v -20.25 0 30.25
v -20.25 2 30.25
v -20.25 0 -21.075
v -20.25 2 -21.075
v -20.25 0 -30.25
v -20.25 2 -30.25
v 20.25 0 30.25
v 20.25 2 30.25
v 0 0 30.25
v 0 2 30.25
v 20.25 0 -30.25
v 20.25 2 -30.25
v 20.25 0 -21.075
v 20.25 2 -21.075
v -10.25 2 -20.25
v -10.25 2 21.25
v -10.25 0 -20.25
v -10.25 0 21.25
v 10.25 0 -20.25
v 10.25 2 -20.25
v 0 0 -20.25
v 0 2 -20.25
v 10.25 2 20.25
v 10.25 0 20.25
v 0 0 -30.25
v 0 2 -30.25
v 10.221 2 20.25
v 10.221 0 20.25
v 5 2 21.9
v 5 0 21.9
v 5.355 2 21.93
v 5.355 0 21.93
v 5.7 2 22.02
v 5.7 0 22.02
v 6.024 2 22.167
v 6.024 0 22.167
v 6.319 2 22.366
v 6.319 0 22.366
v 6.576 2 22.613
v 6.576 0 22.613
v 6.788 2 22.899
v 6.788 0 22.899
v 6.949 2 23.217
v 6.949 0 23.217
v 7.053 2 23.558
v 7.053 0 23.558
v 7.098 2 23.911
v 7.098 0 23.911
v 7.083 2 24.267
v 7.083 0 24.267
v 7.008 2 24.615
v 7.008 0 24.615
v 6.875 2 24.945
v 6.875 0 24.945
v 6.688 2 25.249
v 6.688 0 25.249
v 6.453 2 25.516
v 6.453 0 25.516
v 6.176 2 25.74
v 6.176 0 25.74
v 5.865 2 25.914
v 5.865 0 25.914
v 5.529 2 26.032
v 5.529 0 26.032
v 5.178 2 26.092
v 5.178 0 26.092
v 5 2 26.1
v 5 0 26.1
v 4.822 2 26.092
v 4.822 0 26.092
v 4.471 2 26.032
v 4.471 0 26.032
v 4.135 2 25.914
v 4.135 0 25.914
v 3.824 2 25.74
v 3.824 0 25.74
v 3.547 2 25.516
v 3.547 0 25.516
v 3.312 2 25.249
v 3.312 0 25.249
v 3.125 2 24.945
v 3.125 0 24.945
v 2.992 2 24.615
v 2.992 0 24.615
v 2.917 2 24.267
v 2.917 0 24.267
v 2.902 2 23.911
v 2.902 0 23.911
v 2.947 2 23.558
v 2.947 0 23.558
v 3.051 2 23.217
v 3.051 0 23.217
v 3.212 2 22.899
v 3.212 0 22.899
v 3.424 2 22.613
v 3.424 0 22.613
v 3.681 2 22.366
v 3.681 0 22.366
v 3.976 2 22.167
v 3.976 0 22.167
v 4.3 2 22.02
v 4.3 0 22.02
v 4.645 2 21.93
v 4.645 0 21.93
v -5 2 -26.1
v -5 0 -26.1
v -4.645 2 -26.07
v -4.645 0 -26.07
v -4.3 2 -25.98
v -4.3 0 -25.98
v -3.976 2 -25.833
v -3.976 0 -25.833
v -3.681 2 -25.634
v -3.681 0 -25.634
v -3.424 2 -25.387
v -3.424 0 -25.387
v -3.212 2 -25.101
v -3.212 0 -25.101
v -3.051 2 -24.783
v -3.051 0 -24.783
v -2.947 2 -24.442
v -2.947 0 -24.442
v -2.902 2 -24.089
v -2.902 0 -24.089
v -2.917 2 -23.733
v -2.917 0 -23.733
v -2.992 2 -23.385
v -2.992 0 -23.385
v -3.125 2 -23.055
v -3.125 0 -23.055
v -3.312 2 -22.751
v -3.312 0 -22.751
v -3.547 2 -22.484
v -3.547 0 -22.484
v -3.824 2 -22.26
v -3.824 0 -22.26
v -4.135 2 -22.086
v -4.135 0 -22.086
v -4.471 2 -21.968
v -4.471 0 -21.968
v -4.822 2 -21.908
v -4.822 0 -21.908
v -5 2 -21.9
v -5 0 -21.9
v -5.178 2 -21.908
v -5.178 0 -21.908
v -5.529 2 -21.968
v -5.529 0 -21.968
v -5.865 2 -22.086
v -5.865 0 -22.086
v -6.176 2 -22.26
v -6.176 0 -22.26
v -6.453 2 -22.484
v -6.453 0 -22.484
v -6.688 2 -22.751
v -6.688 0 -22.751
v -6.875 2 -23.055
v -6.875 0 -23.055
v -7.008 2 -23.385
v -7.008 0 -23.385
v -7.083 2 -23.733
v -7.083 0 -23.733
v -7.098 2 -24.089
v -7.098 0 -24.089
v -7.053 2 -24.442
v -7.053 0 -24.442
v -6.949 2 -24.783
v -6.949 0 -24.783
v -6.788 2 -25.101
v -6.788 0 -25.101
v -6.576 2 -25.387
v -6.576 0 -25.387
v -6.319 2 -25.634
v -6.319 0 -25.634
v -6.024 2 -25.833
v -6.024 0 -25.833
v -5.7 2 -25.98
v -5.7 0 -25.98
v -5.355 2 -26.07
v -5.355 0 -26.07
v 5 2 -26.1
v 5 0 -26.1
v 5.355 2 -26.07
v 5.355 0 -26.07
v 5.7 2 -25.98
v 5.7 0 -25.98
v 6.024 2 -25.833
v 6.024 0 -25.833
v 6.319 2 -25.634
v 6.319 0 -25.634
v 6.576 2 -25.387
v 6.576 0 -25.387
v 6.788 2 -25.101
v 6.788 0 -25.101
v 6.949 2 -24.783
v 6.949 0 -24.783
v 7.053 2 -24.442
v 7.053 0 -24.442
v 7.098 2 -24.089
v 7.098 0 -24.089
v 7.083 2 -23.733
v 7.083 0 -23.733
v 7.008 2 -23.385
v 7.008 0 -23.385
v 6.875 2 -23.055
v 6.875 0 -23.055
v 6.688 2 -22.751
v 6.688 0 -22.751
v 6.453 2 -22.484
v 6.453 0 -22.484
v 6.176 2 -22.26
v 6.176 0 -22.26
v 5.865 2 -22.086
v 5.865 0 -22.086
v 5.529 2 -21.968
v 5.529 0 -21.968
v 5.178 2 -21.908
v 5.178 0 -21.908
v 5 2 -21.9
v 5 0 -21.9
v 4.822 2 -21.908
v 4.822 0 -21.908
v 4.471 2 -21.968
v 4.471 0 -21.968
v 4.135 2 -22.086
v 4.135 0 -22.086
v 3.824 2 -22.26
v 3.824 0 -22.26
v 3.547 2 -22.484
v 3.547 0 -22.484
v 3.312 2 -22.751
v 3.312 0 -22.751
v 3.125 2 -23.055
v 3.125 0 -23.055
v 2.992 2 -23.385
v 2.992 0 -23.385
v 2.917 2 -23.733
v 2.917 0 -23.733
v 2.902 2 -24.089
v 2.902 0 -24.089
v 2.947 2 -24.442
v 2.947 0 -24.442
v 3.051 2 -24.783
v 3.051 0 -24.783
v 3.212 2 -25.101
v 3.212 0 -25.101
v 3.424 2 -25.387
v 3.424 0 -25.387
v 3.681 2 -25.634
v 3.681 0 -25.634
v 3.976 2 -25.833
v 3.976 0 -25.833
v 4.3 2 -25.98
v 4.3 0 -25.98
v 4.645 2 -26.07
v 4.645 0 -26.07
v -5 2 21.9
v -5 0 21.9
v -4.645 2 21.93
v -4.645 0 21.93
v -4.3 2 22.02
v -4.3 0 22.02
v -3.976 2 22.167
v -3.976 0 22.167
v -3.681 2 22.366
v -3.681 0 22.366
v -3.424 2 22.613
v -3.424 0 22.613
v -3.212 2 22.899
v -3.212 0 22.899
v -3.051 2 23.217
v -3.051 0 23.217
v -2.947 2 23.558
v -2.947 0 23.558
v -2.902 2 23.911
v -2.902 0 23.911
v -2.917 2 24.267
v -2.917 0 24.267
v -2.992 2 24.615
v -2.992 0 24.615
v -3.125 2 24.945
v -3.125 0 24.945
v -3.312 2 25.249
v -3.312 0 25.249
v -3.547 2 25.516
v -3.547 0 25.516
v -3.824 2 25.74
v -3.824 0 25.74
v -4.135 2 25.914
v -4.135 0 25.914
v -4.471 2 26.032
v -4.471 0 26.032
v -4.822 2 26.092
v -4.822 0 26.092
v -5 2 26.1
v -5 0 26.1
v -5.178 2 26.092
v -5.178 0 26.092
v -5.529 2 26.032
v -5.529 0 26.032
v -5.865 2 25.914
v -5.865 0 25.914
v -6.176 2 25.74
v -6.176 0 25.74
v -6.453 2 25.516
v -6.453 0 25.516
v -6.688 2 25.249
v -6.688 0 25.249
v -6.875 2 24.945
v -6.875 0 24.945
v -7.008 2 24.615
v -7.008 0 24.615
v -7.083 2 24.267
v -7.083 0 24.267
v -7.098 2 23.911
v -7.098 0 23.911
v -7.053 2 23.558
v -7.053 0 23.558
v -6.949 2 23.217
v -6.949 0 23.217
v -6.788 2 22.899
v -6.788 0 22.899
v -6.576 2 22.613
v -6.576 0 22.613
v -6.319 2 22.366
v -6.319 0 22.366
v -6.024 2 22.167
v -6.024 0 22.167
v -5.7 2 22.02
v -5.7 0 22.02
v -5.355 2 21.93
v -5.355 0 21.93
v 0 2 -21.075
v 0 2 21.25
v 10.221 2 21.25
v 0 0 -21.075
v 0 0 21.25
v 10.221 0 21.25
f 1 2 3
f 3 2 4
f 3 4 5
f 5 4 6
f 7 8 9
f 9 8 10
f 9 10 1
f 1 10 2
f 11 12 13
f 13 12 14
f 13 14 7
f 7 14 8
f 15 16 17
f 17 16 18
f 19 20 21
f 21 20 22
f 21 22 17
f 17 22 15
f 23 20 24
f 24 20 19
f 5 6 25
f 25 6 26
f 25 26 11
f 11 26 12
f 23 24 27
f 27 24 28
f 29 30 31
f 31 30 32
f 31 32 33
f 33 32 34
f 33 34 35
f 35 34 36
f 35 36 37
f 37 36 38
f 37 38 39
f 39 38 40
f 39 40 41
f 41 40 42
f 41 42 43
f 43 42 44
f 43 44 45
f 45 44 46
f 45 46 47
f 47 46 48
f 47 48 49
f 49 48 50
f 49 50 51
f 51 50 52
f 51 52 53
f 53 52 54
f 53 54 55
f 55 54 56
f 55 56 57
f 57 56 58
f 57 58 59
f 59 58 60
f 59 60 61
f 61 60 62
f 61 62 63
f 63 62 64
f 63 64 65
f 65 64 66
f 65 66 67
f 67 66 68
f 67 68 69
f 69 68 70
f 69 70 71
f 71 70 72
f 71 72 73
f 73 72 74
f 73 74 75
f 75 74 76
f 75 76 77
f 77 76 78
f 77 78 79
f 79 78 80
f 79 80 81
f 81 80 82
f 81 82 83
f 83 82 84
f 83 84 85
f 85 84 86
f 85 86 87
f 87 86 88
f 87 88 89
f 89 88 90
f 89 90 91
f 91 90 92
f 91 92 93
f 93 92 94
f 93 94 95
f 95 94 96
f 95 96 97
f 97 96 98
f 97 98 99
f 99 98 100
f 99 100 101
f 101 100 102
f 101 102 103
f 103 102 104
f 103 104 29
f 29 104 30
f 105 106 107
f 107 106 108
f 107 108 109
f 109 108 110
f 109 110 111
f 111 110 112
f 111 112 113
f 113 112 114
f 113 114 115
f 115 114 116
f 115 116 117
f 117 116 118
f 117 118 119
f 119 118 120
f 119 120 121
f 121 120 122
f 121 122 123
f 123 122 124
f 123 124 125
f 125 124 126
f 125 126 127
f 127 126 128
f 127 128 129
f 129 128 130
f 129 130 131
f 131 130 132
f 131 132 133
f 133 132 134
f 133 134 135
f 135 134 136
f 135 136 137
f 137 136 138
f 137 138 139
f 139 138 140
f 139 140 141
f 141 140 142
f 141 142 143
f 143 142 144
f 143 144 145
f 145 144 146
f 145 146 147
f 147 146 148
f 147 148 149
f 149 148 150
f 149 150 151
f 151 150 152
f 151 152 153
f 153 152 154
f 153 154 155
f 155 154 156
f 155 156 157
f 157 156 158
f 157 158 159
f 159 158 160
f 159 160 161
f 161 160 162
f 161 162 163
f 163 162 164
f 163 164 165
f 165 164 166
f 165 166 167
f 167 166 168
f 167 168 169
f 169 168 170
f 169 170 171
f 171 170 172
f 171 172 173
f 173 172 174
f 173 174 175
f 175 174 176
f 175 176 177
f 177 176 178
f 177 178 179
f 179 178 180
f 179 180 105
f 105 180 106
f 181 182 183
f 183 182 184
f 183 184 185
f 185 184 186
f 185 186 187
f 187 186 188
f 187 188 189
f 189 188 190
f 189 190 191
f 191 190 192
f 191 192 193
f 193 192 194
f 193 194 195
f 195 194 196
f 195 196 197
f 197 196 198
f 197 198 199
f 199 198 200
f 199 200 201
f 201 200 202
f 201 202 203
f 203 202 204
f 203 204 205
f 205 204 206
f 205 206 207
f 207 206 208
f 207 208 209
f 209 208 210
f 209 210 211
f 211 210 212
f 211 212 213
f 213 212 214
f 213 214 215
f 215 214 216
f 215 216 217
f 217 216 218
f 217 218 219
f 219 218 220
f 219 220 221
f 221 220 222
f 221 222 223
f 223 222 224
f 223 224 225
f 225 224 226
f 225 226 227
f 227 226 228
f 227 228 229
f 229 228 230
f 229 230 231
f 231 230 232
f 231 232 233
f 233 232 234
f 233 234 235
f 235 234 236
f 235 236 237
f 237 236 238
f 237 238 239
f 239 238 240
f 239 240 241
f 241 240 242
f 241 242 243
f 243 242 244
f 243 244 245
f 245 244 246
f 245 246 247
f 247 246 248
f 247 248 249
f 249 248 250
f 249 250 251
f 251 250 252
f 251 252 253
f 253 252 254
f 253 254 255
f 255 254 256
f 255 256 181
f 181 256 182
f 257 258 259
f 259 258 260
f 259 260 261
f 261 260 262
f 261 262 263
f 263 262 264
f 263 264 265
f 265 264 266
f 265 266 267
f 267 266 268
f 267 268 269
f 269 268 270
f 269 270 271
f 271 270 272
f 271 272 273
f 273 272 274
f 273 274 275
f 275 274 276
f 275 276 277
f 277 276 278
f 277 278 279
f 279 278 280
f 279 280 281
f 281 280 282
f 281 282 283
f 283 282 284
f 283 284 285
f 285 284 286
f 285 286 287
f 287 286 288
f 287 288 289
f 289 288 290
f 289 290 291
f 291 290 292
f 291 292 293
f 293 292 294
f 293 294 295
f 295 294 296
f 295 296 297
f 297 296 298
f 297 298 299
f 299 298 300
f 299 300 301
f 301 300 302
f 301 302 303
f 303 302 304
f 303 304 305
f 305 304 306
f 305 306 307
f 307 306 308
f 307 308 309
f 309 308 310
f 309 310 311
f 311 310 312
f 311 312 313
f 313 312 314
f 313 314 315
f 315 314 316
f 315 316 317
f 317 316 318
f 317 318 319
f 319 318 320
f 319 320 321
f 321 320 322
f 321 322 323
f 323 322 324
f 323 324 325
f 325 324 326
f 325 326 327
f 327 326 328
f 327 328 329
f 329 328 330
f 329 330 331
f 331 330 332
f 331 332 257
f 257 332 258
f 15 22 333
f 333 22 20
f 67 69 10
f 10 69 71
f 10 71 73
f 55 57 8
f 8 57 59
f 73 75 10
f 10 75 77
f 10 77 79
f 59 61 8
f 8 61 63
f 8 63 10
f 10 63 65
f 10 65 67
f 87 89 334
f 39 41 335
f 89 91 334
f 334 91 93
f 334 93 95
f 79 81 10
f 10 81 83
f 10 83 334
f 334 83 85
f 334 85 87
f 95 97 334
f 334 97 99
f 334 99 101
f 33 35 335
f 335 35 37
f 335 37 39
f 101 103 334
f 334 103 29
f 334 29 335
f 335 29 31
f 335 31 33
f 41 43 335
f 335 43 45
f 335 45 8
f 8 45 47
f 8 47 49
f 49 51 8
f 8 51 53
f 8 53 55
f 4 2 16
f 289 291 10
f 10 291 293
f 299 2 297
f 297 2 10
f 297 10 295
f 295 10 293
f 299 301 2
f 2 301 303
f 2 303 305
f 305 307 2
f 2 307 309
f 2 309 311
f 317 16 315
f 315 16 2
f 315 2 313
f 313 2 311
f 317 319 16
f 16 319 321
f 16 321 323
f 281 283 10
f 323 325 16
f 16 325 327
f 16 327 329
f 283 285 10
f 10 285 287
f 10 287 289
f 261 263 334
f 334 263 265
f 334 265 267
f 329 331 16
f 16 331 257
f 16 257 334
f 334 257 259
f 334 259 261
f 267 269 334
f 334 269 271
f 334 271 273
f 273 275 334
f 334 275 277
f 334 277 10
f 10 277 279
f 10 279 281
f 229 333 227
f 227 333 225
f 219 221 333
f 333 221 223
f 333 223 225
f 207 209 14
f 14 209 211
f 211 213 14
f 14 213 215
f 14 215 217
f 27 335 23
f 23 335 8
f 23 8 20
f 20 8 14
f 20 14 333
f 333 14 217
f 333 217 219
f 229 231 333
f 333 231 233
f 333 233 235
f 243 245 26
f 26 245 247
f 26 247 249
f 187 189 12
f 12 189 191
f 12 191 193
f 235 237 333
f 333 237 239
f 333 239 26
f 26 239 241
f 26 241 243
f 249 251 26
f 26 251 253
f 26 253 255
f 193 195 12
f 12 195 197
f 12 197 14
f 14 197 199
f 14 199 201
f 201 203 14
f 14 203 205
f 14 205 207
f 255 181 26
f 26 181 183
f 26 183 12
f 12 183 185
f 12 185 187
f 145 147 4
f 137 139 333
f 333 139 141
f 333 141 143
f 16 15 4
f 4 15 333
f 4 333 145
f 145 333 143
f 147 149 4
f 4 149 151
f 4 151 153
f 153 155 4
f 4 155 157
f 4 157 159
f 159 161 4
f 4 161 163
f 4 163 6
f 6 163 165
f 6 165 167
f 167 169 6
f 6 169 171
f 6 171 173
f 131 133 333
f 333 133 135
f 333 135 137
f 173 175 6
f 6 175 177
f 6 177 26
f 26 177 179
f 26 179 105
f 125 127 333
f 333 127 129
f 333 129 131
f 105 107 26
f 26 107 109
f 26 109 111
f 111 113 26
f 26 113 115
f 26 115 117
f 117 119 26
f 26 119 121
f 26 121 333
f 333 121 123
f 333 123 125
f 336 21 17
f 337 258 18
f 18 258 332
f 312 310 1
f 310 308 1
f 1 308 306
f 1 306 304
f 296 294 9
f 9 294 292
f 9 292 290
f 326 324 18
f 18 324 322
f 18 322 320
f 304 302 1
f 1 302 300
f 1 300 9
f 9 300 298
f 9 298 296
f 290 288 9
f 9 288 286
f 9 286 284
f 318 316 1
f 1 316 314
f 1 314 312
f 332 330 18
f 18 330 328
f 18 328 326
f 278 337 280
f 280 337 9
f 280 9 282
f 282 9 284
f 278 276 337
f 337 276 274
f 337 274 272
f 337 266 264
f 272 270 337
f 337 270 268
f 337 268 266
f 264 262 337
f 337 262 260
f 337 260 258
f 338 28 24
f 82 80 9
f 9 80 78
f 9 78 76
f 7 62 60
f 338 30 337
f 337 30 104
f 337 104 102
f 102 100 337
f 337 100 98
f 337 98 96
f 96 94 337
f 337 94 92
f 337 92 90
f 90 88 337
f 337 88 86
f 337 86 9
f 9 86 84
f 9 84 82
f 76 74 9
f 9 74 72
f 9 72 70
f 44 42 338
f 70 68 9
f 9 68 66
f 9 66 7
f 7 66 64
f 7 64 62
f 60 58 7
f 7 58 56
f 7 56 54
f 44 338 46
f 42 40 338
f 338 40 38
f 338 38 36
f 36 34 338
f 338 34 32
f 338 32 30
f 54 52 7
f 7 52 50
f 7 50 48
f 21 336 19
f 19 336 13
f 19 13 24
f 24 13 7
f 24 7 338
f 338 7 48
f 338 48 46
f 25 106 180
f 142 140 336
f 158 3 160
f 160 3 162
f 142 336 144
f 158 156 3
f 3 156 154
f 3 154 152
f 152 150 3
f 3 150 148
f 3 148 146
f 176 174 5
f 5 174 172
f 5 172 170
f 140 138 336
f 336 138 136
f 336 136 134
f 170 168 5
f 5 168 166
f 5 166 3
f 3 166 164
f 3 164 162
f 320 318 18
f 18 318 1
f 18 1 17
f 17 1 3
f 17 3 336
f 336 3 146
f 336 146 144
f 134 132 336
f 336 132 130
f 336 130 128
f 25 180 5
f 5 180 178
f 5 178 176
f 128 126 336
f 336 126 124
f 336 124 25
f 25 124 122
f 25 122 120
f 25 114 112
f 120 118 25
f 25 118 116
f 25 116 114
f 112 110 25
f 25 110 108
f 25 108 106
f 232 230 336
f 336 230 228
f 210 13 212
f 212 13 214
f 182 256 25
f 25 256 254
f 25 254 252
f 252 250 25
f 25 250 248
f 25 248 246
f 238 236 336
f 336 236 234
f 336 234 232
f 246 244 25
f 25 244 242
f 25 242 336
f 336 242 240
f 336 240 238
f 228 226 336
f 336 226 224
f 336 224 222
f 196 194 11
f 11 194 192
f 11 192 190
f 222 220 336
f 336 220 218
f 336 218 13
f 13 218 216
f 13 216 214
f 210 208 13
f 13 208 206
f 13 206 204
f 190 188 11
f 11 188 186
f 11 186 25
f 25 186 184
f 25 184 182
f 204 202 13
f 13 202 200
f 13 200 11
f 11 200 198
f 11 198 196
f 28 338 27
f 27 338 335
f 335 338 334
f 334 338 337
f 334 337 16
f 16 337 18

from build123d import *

# Parameters (mm, degrees)
SKETCH_1_W          = 40.5
SKETCH_1_H          = 60.5
SKETCH_1_R          = 2.1
EXTRUDE_2_DEPTH     = 2
SKETCH_3_W          = 20.471244586
SKETCH_3_H          = 1
CUT_EXTRUDE_2_DEPTH = 2


with BuildPart() as part:
    # 草图1 → 凸台-拉伸2 (new body)
    # profile 1 of 2: a face of its own
    with BuildSketch(Plane(origin=(0, 0, 0), x_dir=(1, 0, 0), z_dir=(0, 1, 0))):
        Rectangle(SKETCH_1_W, SKETCH_1_H)
        with Locations(Location((-5, -24, 0), (0, 0, 270))):
            Circle(SKETCH_1_R, mode=Mode.SUBTRACT)
        with Locations(Location((5, -24, 0), (0, 0, 270))):
            Circle(SKETCH_1_R, mode=Mode.SUBTRACT)
        with BuildLine():
            Line((10.25, -20.25), (-10.25, -20.25))
            Line((-10.25, -20.25), (-10.25, 20.25))
            Line((-10.25, 20.25), (-5, 20.25))
            Line((-5, 20.25), (-5, 21.9))
            ThreePointArc((-5, 21.9), (-6.48492424, 25.48492424), (-2.9, 24))
            Line((-2.9, 24), (2.9, 24))
            ThreePointArc((2.9, 24), (5, 26.1), (7.1, 24))
            ThreePointArc((7.1, 24), (6.48492424, 22.51507576), (5, 21.9))
            Line((5, 21.9), (5, 20.25))
            Line((5, 20.25), (10.25, 20.25))
            Line((10.25, 20.25), (10.25, -20.25))
        make_face(mode=Mode.SUBTRACT)
    # profile 2 of 2: a face of its own
    with BuildSketch(Plane(origin=(0, 0, 0), x_dir=(1, 0, 0), z_dir=(0, 1, 0))):
        with BuildLine():
            Line((-5, 21.9), (-5, 20.25))
            Line((-5, 20.25), (5, 20.25))
            Line((5, 20.25), (5, 21.9))
            ThreePointArc((5, 21.9), (3.51507576, 22.51507576), (2.9, 24))
            Line((2.9, 24), (-2.9, 24))
            ThreePointArc((-2.9, 24), (-3.51507576, 22.51507576), (-5, 21.9))
        make_face()
    extrude(amount=EXTRUDE_2_DEPTH)

    # 草图3 → 切除-拉伸2 (cut)
    with BuildSketch(Plane(origin=(0, 2, 0), x_dir=(1, 0, 0), z_dir=(0, 1, 0))):
        with Locations((-0.014377707, -20.75)):
            Rectangle(SKETCH_3_W, SKETCH_3_H)
    extrude(amount=-CUT_EXTRUDE_2_DEPTH, mode=Mode.SUBTRACT)


solid = part.part
